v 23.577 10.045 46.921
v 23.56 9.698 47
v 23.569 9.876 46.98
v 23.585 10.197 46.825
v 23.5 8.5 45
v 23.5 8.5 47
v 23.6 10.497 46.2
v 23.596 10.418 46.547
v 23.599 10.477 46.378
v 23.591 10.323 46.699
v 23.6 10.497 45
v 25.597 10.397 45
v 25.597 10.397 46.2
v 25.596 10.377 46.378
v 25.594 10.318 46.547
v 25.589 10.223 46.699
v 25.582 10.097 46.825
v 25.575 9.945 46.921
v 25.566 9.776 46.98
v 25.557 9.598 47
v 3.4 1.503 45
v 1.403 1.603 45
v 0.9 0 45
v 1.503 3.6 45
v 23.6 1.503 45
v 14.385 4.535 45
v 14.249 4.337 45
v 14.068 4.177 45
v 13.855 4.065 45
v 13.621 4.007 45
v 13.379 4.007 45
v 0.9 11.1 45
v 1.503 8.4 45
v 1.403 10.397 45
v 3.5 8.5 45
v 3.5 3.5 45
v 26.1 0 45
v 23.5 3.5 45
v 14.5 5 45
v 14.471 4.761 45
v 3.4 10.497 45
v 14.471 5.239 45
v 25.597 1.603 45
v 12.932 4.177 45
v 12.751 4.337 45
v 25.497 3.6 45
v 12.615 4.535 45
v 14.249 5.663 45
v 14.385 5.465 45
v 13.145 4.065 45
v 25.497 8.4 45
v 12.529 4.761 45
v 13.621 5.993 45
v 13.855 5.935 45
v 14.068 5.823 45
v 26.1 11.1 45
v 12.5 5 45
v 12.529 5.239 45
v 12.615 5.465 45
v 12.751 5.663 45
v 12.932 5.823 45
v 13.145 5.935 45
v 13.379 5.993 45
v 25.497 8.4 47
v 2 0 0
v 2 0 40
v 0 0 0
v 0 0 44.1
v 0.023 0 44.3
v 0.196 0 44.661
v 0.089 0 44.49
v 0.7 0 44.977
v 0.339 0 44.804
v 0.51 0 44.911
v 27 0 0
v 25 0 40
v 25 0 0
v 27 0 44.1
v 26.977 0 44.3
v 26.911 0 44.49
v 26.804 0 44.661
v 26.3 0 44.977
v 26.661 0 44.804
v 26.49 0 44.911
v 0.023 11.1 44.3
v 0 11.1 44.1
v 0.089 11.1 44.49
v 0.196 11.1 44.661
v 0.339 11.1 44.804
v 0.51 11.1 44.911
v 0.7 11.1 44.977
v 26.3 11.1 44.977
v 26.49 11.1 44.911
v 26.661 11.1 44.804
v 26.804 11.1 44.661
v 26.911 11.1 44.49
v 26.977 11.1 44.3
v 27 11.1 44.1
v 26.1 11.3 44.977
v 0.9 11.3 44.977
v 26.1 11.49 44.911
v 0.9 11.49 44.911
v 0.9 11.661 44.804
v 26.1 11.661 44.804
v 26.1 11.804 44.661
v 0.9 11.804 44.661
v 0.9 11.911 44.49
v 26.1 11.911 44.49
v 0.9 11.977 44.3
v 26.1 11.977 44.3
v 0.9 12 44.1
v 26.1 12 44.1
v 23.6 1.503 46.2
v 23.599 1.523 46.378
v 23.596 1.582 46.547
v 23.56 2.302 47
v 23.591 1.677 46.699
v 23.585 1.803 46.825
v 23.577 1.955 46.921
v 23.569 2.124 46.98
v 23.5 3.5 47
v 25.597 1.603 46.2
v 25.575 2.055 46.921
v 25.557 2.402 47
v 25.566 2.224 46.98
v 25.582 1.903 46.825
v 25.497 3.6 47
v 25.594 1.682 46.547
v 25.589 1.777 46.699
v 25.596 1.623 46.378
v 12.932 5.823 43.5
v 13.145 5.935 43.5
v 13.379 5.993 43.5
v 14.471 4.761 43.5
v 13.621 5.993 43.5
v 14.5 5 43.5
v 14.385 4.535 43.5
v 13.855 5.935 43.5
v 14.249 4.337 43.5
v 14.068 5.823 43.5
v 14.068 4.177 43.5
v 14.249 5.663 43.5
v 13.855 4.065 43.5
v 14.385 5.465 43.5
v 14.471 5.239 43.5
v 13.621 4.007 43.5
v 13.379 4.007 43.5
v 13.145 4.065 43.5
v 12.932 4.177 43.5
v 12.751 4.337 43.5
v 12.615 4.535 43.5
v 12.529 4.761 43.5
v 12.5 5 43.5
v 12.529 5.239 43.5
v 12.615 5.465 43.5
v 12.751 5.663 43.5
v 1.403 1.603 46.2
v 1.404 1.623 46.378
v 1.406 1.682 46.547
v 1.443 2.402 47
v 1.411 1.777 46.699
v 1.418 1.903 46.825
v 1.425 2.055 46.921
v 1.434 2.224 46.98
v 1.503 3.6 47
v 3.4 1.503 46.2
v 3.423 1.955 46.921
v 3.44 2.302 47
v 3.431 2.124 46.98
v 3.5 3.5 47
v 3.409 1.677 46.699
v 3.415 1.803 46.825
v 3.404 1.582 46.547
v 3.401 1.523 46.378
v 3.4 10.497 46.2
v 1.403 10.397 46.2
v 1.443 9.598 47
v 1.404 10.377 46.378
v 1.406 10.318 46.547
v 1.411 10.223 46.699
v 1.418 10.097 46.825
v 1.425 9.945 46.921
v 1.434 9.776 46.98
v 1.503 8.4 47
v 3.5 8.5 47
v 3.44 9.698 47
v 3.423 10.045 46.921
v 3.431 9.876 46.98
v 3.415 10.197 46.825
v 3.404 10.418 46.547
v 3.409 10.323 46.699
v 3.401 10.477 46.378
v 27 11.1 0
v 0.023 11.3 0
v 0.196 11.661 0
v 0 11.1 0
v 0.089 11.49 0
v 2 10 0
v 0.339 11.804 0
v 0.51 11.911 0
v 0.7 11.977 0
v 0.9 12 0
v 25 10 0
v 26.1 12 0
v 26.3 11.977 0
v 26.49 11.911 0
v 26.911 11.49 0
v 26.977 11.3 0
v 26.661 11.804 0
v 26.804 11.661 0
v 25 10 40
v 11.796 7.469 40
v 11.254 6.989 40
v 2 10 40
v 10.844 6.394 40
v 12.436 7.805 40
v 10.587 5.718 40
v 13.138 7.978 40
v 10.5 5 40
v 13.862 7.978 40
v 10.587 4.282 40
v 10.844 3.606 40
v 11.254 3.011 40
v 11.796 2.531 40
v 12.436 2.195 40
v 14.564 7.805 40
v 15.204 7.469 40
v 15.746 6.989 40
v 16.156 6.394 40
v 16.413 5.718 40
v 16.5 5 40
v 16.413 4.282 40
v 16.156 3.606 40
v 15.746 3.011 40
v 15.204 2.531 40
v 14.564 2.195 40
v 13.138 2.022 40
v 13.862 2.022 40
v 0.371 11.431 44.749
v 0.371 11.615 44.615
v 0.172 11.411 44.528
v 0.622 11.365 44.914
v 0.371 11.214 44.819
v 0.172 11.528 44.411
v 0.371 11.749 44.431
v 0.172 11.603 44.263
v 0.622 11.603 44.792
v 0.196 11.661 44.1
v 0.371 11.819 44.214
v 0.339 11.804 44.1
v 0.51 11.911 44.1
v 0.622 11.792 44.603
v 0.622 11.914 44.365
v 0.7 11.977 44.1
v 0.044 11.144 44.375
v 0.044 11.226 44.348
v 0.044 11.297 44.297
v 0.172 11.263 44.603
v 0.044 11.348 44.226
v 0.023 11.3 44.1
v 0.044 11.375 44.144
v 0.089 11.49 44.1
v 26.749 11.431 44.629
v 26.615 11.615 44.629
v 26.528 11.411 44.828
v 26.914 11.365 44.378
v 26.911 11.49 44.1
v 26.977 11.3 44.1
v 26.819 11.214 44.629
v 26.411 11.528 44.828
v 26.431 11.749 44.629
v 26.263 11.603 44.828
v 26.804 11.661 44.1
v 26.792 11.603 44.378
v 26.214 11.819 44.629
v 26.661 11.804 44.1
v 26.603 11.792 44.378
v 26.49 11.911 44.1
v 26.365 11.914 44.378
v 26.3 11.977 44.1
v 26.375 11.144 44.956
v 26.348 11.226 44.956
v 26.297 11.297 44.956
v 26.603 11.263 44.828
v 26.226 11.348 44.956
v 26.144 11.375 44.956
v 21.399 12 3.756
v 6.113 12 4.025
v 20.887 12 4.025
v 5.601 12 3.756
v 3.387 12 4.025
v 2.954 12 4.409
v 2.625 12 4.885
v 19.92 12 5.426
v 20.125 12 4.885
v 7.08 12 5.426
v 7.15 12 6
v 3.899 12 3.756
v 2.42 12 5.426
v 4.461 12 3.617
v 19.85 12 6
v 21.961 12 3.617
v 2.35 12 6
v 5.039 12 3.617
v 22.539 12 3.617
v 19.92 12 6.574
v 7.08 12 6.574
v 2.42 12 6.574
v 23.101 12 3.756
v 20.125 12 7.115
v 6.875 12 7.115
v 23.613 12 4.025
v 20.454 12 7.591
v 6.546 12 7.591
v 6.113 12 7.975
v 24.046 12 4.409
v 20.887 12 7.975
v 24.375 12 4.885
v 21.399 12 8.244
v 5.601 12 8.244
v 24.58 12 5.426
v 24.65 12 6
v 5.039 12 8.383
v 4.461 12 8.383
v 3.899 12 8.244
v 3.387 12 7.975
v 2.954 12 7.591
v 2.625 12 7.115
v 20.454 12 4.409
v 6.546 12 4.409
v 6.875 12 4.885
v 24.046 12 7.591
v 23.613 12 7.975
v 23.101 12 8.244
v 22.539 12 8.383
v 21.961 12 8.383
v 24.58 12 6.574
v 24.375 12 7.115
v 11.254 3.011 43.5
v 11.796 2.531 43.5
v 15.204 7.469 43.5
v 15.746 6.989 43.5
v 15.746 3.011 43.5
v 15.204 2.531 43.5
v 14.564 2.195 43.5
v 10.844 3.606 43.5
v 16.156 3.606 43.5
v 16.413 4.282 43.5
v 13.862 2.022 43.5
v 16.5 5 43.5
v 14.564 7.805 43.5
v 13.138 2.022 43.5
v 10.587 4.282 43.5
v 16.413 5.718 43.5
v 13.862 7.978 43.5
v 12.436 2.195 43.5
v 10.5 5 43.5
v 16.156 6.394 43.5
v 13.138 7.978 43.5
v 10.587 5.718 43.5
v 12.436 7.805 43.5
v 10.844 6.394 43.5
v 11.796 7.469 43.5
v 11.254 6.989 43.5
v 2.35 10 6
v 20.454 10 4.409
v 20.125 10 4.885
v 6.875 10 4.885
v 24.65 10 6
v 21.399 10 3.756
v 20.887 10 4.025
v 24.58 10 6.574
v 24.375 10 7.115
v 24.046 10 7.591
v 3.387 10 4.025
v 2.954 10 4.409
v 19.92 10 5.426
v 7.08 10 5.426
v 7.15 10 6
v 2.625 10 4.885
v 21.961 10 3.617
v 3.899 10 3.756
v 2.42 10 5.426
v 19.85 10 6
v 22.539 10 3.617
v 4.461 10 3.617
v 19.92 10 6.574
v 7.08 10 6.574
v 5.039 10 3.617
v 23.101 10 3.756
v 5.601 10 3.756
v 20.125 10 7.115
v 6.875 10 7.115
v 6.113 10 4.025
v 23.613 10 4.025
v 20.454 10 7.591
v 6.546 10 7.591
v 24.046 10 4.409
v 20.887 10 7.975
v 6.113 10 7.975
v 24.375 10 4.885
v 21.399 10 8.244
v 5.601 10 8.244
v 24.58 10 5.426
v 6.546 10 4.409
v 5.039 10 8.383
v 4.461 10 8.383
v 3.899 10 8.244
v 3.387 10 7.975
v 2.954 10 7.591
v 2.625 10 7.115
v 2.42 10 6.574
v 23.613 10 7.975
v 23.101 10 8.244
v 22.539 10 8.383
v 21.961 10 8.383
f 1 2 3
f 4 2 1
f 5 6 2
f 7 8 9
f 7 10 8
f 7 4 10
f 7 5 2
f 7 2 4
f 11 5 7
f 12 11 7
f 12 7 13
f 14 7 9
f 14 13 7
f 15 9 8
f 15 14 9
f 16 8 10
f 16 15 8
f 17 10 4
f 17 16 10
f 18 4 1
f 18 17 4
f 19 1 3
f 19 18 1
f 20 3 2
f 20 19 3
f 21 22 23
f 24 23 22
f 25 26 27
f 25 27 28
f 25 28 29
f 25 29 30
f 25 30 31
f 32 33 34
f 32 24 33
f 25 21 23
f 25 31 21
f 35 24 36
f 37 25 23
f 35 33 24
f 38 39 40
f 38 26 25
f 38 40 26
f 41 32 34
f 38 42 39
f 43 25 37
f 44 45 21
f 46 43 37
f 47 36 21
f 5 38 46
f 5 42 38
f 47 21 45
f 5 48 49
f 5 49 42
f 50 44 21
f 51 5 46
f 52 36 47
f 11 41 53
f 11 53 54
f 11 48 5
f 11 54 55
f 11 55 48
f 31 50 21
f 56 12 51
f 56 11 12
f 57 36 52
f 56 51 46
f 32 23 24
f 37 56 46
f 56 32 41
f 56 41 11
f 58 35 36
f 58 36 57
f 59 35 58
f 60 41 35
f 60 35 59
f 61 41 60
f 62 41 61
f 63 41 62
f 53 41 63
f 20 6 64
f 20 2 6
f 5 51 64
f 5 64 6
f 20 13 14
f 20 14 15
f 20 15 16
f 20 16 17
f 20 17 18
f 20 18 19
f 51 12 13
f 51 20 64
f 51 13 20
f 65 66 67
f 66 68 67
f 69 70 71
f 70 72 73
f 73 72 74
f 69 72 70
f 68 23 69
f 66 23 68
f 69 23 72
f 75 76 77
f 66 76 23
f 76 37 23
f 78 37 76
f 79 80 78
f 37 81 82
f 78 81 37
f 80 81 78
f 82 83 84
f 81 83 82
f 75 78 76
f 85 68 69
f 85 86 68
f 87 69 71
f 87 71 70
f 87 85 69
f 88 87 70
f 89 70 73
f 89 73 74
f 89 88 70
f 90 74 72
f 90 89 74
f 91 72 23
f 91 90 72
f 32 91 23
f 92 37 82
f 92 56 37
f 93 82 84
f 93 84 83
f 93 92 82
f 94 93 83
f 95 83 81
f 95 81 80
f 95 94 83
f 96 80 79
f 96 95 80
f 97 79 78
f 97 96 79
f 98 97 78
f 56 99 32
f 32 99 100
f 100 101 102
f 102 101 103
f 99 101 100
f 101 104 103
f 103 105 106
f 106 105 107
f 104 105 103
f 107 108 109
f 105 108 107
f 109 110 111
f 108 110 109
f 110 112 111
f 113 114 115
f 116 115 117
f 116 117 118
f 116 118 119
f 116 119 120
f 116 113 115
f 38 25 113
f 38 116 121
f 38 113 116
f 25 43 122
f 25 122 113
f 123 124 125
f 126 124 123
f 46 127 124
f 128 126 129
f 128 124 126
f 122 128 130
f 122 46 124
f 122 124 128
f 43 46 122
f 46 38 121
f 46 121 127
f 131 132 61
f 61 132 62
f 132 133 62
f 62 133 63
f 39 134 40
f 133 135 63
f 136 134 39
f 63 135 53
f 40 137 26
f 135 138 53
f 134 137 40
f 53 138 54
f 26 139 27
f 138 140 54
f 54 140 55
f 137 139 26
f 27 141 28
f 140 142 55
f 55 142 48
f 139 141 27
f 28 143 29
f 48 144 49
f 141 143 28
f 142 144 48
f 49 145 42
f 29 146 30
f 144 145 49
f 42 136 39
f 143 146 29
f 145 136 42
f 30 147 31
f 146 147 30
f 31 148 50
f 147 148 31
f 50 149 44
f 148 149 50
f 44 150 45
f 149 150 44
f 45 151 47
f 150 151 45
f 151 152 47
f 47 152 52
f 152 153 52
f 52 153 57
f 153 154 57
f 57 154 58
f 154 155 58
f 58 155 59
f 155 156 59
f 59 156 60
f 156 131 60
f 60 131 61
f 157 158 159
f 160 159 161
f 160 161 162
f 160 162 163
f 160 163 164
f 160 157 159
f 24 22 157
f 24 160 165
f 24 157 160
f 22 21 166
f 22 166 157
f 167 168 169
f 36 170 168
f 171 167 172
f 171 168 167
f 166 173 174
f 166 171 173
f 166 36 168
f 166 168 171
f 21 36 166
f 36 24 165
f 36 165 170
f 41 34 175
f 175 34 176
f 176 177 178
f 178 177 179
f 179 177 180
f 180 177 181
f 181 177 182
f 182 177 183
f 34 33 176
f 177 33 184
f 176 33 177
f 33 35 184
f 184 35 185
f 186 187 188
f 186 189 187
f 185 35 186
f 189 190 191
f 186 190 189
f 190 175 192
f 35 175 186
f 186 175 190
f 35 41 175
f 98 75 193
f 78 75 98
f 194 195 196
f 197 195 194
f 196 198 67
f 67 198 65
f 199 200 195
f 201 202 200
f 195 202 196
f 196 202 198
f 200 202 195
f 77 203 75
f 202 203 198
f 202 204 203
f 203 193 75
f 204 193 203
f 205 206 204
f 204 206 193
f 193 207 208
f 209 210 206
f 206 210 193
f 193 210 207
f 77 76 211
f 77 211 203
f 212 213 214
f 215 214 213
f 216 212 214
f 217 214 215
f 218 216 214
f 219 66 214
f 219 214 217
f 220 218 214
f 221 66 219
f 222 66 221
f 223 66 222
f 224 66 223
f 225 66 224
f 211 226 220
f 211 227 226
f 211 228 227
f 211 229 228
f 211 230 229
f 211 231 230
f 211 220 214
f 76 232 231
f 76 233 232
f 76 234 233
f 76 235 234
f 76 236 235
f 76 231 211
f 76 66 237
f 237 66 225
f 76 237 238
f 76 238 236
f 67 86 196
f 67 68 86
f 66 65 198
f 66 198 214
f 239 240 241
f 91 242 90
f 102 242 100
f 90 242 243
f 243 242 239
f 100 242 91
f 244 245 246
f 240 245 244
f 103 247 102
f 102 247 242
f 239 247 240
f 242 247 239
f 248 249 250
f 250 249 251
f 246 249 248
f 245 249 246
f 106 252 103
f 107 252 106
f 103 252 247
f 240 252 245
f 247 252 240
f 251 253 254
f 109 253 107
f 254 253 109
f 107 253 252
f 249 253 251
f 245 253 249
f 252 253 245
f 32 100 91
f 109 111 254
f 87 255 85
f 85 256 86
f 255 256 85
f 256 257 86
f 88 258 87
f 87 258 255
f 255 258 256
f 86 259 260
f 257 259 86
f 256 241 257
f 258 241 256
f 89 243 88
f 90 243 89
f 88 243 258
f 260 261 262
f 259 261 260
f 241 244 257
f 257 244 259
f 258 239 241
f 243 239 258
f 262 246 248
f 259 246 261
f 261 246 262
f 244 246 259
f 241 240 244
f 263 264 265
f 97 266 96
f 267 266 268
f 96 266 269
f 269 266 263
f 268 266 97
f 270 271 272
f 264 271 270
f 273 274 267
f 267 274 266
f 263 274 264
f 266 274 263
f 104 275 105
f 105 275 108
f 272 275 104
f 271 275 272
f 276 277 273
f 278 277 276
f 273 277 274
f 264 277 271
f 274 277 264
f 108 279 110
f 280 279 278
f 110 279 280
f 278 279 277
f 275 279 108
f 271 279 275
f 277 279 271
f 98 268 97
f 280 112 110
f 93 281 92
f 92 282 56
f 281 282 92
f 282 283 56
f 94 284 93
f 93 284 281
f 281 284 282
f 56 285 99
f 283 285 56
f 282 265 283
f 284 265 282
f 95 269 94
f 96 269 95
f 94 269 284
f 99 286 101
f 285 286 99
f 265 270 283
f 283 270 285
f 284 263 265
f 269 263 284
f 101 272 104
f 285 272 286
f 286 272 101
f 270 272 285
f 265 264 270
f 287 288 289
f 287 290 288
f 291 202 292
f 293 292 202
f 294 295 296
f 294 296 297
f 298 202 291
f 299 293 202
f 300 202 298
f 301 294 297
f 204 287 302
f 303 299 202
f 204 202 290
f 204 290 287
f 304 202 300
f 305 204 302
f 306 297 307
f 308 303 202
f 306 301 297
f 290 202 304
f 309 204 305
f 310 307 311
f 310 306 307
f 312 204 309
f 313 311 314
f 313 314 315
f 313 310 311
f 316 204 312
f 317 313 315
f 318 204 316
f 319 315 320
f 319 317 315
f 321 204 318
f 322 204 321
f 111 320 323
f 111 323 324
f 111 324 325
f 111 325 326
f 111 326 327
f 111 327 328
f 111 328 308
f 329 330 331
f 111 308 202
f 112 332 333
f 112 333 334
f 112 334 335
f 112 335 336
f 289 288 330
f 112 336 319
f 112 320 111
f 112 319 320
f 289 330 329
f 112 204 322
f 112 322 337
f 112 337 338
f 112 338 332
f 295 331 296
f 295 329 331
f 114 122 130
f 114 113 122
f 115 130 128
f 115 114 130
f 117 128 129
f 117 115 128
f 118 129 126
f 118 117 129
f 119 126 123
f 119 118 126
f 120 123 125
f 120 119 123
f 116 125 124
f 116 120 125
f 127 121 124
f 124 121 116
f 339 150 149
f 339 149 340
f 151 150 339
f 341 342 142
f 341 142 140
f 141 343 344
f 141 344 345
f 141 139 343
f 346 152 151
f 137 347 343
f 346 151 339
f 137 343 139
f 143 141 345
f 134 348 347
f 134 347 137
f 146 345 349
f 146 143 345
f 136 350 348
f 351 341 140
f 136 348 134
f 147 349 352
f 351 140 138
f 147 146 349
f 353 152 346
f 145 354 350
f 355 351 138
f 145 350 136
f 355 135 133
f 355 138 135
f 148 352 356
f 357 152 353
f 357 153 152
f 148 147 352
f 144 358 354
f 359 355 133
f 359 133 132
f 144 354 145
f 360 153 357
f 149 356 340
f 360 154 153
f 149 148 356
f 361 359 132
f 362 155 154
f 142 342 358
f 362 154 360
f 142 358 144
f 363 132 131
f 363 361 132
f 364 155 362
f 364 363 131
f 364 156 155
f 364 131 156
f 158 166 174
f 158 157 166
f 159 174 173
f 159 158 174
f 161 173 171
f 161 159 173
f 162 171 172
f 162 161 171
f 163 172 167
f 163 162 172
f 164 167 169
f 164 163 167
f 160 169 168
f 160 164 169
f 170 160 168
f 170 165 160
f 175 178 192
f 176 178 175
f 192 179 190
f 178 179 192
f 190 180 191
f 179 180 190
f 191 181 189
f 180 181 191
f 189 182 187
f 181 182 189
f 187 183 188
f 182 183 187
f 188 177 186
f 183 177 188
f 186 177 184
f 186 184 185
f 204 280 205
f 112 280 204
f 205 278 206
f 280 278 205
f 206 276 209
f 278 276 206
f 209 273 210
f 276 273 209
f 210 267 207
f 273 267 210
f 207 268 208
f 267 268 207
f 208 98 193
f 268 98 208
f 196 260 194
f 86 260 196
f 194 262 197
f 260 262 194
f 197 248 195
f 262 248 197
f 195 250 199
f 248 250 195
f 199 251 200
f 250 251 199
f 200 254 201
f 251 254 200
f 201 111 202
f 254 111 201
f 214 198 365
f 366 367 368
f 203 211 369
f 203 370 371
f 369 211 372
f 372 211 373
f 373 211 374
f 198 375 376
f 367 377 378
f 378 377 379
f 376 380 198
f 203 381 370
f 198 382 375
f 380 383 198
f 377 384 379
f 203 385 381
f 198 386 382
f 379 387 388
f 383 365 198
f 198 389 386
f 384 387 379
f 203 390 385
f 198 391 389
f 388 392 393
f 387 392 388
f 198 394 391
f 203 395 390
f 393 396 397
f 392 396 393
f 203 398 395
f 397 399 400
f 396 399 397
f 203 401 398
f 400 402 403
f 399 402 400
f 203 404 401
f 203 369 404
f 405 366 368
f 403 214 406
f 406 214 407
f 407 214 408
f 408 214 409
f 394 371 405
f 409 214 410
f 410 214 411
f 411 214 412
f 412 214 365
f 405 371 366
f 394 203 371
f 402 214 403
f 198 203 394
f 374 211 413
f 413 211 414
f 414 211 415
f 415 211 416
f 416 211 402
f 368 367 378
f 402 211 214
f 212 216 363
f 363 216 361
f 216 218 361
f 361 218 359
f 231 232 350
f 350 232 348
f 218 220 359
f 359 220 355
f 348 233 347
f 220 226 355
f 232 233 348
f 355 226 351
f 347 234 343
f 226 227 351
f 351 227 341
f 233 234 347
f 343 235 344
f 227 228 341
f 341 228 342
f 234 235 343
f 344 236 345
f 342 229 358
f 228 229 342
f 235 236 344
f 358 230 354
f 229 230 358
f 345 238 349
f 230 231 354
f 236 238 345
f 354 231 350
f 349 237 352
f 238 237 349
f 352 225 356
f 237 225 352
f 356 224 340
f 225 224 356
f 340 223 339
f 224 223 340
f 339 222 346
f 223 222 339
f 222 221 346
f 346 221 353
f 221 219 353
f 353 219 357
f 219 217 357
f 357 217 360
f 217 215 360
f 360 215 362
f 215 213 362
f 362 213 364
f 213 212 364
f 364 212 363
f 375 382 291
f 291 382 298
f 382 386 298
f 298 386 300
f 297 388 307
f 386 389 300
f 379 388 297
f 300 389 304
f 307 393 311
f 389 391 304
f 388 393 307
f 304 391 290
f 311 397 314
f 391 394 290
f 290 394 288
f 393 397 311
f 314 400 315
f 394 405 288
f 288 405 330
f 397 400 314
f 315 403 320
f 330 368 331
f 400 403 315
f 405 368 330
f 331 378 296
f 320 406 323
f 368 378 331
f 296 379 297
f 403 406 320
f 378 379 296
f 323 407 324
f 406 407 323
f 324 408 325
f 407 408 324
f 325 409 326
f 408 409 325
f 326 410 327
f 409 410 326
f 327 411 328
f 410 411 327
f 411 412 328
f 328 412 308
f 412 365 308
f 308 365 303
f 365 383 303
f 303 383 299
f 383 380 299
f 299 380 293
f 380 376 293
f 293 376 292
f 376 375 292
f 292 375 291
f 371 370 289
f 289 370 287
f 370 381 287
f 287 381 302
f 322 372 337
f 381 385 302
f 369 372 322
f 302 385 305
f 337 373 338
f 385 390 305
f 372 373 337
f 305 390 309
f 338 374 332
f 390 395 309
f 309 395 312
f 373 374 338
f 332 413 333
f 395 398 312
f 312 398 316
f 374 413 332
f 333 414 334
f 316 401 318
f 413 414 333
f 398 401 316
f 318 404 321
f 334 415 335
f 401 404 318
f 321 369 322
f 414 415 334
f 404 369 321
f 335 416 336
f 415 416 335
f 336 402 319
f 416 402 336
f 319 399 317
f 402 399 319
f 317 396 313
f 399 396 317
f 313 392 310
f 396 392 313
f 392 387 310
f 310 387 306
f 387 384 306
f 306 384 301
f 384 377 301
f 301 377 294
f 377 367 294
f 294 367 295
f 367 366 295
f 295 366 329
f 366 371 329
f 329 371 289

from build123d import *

# Parameters (mm, degrees)
BOX_W           = 27
BOX_H           = 12
BOX_DEPTH       = 45
SKETCH_W        = 23
SKETCH_H        = 40
POCKET_DEPTH    = 10
SKETCH002_R     = 1
POCKET001_DEPTH = 5.001
SKETCH003_R     = 3
POCKET002_DEPTH = 3.5
SKETCH004_R     = 2.4
POCKET003_DEPTH = 2.001
PAD_DEPTH       = 2
FILLET_R        = 0.9
FILLET001_R     = 0.8


with BuildPart() as part:
    # Box → Box (new body)
    with BuildSketch(Plane.XY):
        with Locations((13.5, 6)):
            Rectangle(BOX_W, BOX_H)
    extrude(amount=BOX_DEPTH)

    # Sketch (on Face3 of BaseFeature) → Pocket (cut)
    with BuildSketch(Plane.XZ):
        with Locations((13.5, 20)):
            Rectangle(SKETCH_W, SKETCH_H)
    extrude(amount=-POCKET_DEPTH, mode=Mode.SUBTRACT)

    # Sketch002 (on Face7 of Pocket) → Pocket001 (cut, through all)
    with BuildSketch(Plane(origin=(0, 0, 40), x_dir=(1, 0, 0), z_dir=(0, 0, -1))):
        with Locations((13.5, -5)):
            Circle(SKETCH002_R)
    extrude(amount=-POCKET001_DEPTH, mode=Mode.SUBTRACT)

    # Sketch003 (on Face7 of Pocket001) → Pocket002 (cut)
    with BuildSketch(Plane(origin=(0, 0, 40), x_dir=(1, 0, 0), z_dir=(0, 0, -1))):
        with Locations((13.5, -5)):
            Circle(SKETCH003_R)
    extrude(amount=-POCKET002_DEPTH, mode=Mode.SUBTRACT)

    # Sketch004 (on Face11 of Pocket002) → Pocket003 (cut, through all)
    with BuildSketch(Plane.XZ.offset(-10)):
        with Locations((4.75, 6)):
            Circle(SKETCH004_R)
        with Locations((22.25, 6)):
            Circle(SKETCH004_R)
    extrude(amount=-POCKET003_DEPTH, mode=Mode.SUBTRACT)

    # Sketch006 (on Face3 of Pocket003) → Pad (join)
    with BuildSketch(Plane.XY.offset(45)):
        Polygon((3.4, 10.497498), (1.402502, 10.397498), (1.502502, 8.4), (3.5, 8.5), align=None)
        Polygon((1.502502, 3.6), (3.5, 3.5), (3.4, 1.502502), (1.402502, 1.602502), align=None)
        Polygon((23.5, 3.5), (25.497498, 3.6), (25.597498, 1.602502), (23.6, 1.502502), align=None)
        Polygon((23.6, 10.497498), (25.597498, 10.397498), (25.497498, 8.4), (23.5, 8.5), align=None)
    extrude(amount=PAD_DEPTH)

    # Fillet
    fillet_edges = [part.edges().sort_by_distance(p)[0] for p in [
        (27, 12, 22.5),
        (27, 6, 45),
        (13.5, 12, 45),
        (0, 6, 45),
        (0, 12, 22.5),
    ]]
    fillet(fillet_edges, radius=FILLET_R)

    # Fillet001
    fillet001_edges = [part.edges().sort_by_distance(p)[0] for p in [
        (2.401251, 1.552502, 47),
        (2.401251, 10.447498, 47),
        (24.598749, 10.447498, 47),
        (24.598749, 1.552502, 47),
    ]]
    fillet(fillet001_edges, radius=FILLET001_R)


solid = part.part
